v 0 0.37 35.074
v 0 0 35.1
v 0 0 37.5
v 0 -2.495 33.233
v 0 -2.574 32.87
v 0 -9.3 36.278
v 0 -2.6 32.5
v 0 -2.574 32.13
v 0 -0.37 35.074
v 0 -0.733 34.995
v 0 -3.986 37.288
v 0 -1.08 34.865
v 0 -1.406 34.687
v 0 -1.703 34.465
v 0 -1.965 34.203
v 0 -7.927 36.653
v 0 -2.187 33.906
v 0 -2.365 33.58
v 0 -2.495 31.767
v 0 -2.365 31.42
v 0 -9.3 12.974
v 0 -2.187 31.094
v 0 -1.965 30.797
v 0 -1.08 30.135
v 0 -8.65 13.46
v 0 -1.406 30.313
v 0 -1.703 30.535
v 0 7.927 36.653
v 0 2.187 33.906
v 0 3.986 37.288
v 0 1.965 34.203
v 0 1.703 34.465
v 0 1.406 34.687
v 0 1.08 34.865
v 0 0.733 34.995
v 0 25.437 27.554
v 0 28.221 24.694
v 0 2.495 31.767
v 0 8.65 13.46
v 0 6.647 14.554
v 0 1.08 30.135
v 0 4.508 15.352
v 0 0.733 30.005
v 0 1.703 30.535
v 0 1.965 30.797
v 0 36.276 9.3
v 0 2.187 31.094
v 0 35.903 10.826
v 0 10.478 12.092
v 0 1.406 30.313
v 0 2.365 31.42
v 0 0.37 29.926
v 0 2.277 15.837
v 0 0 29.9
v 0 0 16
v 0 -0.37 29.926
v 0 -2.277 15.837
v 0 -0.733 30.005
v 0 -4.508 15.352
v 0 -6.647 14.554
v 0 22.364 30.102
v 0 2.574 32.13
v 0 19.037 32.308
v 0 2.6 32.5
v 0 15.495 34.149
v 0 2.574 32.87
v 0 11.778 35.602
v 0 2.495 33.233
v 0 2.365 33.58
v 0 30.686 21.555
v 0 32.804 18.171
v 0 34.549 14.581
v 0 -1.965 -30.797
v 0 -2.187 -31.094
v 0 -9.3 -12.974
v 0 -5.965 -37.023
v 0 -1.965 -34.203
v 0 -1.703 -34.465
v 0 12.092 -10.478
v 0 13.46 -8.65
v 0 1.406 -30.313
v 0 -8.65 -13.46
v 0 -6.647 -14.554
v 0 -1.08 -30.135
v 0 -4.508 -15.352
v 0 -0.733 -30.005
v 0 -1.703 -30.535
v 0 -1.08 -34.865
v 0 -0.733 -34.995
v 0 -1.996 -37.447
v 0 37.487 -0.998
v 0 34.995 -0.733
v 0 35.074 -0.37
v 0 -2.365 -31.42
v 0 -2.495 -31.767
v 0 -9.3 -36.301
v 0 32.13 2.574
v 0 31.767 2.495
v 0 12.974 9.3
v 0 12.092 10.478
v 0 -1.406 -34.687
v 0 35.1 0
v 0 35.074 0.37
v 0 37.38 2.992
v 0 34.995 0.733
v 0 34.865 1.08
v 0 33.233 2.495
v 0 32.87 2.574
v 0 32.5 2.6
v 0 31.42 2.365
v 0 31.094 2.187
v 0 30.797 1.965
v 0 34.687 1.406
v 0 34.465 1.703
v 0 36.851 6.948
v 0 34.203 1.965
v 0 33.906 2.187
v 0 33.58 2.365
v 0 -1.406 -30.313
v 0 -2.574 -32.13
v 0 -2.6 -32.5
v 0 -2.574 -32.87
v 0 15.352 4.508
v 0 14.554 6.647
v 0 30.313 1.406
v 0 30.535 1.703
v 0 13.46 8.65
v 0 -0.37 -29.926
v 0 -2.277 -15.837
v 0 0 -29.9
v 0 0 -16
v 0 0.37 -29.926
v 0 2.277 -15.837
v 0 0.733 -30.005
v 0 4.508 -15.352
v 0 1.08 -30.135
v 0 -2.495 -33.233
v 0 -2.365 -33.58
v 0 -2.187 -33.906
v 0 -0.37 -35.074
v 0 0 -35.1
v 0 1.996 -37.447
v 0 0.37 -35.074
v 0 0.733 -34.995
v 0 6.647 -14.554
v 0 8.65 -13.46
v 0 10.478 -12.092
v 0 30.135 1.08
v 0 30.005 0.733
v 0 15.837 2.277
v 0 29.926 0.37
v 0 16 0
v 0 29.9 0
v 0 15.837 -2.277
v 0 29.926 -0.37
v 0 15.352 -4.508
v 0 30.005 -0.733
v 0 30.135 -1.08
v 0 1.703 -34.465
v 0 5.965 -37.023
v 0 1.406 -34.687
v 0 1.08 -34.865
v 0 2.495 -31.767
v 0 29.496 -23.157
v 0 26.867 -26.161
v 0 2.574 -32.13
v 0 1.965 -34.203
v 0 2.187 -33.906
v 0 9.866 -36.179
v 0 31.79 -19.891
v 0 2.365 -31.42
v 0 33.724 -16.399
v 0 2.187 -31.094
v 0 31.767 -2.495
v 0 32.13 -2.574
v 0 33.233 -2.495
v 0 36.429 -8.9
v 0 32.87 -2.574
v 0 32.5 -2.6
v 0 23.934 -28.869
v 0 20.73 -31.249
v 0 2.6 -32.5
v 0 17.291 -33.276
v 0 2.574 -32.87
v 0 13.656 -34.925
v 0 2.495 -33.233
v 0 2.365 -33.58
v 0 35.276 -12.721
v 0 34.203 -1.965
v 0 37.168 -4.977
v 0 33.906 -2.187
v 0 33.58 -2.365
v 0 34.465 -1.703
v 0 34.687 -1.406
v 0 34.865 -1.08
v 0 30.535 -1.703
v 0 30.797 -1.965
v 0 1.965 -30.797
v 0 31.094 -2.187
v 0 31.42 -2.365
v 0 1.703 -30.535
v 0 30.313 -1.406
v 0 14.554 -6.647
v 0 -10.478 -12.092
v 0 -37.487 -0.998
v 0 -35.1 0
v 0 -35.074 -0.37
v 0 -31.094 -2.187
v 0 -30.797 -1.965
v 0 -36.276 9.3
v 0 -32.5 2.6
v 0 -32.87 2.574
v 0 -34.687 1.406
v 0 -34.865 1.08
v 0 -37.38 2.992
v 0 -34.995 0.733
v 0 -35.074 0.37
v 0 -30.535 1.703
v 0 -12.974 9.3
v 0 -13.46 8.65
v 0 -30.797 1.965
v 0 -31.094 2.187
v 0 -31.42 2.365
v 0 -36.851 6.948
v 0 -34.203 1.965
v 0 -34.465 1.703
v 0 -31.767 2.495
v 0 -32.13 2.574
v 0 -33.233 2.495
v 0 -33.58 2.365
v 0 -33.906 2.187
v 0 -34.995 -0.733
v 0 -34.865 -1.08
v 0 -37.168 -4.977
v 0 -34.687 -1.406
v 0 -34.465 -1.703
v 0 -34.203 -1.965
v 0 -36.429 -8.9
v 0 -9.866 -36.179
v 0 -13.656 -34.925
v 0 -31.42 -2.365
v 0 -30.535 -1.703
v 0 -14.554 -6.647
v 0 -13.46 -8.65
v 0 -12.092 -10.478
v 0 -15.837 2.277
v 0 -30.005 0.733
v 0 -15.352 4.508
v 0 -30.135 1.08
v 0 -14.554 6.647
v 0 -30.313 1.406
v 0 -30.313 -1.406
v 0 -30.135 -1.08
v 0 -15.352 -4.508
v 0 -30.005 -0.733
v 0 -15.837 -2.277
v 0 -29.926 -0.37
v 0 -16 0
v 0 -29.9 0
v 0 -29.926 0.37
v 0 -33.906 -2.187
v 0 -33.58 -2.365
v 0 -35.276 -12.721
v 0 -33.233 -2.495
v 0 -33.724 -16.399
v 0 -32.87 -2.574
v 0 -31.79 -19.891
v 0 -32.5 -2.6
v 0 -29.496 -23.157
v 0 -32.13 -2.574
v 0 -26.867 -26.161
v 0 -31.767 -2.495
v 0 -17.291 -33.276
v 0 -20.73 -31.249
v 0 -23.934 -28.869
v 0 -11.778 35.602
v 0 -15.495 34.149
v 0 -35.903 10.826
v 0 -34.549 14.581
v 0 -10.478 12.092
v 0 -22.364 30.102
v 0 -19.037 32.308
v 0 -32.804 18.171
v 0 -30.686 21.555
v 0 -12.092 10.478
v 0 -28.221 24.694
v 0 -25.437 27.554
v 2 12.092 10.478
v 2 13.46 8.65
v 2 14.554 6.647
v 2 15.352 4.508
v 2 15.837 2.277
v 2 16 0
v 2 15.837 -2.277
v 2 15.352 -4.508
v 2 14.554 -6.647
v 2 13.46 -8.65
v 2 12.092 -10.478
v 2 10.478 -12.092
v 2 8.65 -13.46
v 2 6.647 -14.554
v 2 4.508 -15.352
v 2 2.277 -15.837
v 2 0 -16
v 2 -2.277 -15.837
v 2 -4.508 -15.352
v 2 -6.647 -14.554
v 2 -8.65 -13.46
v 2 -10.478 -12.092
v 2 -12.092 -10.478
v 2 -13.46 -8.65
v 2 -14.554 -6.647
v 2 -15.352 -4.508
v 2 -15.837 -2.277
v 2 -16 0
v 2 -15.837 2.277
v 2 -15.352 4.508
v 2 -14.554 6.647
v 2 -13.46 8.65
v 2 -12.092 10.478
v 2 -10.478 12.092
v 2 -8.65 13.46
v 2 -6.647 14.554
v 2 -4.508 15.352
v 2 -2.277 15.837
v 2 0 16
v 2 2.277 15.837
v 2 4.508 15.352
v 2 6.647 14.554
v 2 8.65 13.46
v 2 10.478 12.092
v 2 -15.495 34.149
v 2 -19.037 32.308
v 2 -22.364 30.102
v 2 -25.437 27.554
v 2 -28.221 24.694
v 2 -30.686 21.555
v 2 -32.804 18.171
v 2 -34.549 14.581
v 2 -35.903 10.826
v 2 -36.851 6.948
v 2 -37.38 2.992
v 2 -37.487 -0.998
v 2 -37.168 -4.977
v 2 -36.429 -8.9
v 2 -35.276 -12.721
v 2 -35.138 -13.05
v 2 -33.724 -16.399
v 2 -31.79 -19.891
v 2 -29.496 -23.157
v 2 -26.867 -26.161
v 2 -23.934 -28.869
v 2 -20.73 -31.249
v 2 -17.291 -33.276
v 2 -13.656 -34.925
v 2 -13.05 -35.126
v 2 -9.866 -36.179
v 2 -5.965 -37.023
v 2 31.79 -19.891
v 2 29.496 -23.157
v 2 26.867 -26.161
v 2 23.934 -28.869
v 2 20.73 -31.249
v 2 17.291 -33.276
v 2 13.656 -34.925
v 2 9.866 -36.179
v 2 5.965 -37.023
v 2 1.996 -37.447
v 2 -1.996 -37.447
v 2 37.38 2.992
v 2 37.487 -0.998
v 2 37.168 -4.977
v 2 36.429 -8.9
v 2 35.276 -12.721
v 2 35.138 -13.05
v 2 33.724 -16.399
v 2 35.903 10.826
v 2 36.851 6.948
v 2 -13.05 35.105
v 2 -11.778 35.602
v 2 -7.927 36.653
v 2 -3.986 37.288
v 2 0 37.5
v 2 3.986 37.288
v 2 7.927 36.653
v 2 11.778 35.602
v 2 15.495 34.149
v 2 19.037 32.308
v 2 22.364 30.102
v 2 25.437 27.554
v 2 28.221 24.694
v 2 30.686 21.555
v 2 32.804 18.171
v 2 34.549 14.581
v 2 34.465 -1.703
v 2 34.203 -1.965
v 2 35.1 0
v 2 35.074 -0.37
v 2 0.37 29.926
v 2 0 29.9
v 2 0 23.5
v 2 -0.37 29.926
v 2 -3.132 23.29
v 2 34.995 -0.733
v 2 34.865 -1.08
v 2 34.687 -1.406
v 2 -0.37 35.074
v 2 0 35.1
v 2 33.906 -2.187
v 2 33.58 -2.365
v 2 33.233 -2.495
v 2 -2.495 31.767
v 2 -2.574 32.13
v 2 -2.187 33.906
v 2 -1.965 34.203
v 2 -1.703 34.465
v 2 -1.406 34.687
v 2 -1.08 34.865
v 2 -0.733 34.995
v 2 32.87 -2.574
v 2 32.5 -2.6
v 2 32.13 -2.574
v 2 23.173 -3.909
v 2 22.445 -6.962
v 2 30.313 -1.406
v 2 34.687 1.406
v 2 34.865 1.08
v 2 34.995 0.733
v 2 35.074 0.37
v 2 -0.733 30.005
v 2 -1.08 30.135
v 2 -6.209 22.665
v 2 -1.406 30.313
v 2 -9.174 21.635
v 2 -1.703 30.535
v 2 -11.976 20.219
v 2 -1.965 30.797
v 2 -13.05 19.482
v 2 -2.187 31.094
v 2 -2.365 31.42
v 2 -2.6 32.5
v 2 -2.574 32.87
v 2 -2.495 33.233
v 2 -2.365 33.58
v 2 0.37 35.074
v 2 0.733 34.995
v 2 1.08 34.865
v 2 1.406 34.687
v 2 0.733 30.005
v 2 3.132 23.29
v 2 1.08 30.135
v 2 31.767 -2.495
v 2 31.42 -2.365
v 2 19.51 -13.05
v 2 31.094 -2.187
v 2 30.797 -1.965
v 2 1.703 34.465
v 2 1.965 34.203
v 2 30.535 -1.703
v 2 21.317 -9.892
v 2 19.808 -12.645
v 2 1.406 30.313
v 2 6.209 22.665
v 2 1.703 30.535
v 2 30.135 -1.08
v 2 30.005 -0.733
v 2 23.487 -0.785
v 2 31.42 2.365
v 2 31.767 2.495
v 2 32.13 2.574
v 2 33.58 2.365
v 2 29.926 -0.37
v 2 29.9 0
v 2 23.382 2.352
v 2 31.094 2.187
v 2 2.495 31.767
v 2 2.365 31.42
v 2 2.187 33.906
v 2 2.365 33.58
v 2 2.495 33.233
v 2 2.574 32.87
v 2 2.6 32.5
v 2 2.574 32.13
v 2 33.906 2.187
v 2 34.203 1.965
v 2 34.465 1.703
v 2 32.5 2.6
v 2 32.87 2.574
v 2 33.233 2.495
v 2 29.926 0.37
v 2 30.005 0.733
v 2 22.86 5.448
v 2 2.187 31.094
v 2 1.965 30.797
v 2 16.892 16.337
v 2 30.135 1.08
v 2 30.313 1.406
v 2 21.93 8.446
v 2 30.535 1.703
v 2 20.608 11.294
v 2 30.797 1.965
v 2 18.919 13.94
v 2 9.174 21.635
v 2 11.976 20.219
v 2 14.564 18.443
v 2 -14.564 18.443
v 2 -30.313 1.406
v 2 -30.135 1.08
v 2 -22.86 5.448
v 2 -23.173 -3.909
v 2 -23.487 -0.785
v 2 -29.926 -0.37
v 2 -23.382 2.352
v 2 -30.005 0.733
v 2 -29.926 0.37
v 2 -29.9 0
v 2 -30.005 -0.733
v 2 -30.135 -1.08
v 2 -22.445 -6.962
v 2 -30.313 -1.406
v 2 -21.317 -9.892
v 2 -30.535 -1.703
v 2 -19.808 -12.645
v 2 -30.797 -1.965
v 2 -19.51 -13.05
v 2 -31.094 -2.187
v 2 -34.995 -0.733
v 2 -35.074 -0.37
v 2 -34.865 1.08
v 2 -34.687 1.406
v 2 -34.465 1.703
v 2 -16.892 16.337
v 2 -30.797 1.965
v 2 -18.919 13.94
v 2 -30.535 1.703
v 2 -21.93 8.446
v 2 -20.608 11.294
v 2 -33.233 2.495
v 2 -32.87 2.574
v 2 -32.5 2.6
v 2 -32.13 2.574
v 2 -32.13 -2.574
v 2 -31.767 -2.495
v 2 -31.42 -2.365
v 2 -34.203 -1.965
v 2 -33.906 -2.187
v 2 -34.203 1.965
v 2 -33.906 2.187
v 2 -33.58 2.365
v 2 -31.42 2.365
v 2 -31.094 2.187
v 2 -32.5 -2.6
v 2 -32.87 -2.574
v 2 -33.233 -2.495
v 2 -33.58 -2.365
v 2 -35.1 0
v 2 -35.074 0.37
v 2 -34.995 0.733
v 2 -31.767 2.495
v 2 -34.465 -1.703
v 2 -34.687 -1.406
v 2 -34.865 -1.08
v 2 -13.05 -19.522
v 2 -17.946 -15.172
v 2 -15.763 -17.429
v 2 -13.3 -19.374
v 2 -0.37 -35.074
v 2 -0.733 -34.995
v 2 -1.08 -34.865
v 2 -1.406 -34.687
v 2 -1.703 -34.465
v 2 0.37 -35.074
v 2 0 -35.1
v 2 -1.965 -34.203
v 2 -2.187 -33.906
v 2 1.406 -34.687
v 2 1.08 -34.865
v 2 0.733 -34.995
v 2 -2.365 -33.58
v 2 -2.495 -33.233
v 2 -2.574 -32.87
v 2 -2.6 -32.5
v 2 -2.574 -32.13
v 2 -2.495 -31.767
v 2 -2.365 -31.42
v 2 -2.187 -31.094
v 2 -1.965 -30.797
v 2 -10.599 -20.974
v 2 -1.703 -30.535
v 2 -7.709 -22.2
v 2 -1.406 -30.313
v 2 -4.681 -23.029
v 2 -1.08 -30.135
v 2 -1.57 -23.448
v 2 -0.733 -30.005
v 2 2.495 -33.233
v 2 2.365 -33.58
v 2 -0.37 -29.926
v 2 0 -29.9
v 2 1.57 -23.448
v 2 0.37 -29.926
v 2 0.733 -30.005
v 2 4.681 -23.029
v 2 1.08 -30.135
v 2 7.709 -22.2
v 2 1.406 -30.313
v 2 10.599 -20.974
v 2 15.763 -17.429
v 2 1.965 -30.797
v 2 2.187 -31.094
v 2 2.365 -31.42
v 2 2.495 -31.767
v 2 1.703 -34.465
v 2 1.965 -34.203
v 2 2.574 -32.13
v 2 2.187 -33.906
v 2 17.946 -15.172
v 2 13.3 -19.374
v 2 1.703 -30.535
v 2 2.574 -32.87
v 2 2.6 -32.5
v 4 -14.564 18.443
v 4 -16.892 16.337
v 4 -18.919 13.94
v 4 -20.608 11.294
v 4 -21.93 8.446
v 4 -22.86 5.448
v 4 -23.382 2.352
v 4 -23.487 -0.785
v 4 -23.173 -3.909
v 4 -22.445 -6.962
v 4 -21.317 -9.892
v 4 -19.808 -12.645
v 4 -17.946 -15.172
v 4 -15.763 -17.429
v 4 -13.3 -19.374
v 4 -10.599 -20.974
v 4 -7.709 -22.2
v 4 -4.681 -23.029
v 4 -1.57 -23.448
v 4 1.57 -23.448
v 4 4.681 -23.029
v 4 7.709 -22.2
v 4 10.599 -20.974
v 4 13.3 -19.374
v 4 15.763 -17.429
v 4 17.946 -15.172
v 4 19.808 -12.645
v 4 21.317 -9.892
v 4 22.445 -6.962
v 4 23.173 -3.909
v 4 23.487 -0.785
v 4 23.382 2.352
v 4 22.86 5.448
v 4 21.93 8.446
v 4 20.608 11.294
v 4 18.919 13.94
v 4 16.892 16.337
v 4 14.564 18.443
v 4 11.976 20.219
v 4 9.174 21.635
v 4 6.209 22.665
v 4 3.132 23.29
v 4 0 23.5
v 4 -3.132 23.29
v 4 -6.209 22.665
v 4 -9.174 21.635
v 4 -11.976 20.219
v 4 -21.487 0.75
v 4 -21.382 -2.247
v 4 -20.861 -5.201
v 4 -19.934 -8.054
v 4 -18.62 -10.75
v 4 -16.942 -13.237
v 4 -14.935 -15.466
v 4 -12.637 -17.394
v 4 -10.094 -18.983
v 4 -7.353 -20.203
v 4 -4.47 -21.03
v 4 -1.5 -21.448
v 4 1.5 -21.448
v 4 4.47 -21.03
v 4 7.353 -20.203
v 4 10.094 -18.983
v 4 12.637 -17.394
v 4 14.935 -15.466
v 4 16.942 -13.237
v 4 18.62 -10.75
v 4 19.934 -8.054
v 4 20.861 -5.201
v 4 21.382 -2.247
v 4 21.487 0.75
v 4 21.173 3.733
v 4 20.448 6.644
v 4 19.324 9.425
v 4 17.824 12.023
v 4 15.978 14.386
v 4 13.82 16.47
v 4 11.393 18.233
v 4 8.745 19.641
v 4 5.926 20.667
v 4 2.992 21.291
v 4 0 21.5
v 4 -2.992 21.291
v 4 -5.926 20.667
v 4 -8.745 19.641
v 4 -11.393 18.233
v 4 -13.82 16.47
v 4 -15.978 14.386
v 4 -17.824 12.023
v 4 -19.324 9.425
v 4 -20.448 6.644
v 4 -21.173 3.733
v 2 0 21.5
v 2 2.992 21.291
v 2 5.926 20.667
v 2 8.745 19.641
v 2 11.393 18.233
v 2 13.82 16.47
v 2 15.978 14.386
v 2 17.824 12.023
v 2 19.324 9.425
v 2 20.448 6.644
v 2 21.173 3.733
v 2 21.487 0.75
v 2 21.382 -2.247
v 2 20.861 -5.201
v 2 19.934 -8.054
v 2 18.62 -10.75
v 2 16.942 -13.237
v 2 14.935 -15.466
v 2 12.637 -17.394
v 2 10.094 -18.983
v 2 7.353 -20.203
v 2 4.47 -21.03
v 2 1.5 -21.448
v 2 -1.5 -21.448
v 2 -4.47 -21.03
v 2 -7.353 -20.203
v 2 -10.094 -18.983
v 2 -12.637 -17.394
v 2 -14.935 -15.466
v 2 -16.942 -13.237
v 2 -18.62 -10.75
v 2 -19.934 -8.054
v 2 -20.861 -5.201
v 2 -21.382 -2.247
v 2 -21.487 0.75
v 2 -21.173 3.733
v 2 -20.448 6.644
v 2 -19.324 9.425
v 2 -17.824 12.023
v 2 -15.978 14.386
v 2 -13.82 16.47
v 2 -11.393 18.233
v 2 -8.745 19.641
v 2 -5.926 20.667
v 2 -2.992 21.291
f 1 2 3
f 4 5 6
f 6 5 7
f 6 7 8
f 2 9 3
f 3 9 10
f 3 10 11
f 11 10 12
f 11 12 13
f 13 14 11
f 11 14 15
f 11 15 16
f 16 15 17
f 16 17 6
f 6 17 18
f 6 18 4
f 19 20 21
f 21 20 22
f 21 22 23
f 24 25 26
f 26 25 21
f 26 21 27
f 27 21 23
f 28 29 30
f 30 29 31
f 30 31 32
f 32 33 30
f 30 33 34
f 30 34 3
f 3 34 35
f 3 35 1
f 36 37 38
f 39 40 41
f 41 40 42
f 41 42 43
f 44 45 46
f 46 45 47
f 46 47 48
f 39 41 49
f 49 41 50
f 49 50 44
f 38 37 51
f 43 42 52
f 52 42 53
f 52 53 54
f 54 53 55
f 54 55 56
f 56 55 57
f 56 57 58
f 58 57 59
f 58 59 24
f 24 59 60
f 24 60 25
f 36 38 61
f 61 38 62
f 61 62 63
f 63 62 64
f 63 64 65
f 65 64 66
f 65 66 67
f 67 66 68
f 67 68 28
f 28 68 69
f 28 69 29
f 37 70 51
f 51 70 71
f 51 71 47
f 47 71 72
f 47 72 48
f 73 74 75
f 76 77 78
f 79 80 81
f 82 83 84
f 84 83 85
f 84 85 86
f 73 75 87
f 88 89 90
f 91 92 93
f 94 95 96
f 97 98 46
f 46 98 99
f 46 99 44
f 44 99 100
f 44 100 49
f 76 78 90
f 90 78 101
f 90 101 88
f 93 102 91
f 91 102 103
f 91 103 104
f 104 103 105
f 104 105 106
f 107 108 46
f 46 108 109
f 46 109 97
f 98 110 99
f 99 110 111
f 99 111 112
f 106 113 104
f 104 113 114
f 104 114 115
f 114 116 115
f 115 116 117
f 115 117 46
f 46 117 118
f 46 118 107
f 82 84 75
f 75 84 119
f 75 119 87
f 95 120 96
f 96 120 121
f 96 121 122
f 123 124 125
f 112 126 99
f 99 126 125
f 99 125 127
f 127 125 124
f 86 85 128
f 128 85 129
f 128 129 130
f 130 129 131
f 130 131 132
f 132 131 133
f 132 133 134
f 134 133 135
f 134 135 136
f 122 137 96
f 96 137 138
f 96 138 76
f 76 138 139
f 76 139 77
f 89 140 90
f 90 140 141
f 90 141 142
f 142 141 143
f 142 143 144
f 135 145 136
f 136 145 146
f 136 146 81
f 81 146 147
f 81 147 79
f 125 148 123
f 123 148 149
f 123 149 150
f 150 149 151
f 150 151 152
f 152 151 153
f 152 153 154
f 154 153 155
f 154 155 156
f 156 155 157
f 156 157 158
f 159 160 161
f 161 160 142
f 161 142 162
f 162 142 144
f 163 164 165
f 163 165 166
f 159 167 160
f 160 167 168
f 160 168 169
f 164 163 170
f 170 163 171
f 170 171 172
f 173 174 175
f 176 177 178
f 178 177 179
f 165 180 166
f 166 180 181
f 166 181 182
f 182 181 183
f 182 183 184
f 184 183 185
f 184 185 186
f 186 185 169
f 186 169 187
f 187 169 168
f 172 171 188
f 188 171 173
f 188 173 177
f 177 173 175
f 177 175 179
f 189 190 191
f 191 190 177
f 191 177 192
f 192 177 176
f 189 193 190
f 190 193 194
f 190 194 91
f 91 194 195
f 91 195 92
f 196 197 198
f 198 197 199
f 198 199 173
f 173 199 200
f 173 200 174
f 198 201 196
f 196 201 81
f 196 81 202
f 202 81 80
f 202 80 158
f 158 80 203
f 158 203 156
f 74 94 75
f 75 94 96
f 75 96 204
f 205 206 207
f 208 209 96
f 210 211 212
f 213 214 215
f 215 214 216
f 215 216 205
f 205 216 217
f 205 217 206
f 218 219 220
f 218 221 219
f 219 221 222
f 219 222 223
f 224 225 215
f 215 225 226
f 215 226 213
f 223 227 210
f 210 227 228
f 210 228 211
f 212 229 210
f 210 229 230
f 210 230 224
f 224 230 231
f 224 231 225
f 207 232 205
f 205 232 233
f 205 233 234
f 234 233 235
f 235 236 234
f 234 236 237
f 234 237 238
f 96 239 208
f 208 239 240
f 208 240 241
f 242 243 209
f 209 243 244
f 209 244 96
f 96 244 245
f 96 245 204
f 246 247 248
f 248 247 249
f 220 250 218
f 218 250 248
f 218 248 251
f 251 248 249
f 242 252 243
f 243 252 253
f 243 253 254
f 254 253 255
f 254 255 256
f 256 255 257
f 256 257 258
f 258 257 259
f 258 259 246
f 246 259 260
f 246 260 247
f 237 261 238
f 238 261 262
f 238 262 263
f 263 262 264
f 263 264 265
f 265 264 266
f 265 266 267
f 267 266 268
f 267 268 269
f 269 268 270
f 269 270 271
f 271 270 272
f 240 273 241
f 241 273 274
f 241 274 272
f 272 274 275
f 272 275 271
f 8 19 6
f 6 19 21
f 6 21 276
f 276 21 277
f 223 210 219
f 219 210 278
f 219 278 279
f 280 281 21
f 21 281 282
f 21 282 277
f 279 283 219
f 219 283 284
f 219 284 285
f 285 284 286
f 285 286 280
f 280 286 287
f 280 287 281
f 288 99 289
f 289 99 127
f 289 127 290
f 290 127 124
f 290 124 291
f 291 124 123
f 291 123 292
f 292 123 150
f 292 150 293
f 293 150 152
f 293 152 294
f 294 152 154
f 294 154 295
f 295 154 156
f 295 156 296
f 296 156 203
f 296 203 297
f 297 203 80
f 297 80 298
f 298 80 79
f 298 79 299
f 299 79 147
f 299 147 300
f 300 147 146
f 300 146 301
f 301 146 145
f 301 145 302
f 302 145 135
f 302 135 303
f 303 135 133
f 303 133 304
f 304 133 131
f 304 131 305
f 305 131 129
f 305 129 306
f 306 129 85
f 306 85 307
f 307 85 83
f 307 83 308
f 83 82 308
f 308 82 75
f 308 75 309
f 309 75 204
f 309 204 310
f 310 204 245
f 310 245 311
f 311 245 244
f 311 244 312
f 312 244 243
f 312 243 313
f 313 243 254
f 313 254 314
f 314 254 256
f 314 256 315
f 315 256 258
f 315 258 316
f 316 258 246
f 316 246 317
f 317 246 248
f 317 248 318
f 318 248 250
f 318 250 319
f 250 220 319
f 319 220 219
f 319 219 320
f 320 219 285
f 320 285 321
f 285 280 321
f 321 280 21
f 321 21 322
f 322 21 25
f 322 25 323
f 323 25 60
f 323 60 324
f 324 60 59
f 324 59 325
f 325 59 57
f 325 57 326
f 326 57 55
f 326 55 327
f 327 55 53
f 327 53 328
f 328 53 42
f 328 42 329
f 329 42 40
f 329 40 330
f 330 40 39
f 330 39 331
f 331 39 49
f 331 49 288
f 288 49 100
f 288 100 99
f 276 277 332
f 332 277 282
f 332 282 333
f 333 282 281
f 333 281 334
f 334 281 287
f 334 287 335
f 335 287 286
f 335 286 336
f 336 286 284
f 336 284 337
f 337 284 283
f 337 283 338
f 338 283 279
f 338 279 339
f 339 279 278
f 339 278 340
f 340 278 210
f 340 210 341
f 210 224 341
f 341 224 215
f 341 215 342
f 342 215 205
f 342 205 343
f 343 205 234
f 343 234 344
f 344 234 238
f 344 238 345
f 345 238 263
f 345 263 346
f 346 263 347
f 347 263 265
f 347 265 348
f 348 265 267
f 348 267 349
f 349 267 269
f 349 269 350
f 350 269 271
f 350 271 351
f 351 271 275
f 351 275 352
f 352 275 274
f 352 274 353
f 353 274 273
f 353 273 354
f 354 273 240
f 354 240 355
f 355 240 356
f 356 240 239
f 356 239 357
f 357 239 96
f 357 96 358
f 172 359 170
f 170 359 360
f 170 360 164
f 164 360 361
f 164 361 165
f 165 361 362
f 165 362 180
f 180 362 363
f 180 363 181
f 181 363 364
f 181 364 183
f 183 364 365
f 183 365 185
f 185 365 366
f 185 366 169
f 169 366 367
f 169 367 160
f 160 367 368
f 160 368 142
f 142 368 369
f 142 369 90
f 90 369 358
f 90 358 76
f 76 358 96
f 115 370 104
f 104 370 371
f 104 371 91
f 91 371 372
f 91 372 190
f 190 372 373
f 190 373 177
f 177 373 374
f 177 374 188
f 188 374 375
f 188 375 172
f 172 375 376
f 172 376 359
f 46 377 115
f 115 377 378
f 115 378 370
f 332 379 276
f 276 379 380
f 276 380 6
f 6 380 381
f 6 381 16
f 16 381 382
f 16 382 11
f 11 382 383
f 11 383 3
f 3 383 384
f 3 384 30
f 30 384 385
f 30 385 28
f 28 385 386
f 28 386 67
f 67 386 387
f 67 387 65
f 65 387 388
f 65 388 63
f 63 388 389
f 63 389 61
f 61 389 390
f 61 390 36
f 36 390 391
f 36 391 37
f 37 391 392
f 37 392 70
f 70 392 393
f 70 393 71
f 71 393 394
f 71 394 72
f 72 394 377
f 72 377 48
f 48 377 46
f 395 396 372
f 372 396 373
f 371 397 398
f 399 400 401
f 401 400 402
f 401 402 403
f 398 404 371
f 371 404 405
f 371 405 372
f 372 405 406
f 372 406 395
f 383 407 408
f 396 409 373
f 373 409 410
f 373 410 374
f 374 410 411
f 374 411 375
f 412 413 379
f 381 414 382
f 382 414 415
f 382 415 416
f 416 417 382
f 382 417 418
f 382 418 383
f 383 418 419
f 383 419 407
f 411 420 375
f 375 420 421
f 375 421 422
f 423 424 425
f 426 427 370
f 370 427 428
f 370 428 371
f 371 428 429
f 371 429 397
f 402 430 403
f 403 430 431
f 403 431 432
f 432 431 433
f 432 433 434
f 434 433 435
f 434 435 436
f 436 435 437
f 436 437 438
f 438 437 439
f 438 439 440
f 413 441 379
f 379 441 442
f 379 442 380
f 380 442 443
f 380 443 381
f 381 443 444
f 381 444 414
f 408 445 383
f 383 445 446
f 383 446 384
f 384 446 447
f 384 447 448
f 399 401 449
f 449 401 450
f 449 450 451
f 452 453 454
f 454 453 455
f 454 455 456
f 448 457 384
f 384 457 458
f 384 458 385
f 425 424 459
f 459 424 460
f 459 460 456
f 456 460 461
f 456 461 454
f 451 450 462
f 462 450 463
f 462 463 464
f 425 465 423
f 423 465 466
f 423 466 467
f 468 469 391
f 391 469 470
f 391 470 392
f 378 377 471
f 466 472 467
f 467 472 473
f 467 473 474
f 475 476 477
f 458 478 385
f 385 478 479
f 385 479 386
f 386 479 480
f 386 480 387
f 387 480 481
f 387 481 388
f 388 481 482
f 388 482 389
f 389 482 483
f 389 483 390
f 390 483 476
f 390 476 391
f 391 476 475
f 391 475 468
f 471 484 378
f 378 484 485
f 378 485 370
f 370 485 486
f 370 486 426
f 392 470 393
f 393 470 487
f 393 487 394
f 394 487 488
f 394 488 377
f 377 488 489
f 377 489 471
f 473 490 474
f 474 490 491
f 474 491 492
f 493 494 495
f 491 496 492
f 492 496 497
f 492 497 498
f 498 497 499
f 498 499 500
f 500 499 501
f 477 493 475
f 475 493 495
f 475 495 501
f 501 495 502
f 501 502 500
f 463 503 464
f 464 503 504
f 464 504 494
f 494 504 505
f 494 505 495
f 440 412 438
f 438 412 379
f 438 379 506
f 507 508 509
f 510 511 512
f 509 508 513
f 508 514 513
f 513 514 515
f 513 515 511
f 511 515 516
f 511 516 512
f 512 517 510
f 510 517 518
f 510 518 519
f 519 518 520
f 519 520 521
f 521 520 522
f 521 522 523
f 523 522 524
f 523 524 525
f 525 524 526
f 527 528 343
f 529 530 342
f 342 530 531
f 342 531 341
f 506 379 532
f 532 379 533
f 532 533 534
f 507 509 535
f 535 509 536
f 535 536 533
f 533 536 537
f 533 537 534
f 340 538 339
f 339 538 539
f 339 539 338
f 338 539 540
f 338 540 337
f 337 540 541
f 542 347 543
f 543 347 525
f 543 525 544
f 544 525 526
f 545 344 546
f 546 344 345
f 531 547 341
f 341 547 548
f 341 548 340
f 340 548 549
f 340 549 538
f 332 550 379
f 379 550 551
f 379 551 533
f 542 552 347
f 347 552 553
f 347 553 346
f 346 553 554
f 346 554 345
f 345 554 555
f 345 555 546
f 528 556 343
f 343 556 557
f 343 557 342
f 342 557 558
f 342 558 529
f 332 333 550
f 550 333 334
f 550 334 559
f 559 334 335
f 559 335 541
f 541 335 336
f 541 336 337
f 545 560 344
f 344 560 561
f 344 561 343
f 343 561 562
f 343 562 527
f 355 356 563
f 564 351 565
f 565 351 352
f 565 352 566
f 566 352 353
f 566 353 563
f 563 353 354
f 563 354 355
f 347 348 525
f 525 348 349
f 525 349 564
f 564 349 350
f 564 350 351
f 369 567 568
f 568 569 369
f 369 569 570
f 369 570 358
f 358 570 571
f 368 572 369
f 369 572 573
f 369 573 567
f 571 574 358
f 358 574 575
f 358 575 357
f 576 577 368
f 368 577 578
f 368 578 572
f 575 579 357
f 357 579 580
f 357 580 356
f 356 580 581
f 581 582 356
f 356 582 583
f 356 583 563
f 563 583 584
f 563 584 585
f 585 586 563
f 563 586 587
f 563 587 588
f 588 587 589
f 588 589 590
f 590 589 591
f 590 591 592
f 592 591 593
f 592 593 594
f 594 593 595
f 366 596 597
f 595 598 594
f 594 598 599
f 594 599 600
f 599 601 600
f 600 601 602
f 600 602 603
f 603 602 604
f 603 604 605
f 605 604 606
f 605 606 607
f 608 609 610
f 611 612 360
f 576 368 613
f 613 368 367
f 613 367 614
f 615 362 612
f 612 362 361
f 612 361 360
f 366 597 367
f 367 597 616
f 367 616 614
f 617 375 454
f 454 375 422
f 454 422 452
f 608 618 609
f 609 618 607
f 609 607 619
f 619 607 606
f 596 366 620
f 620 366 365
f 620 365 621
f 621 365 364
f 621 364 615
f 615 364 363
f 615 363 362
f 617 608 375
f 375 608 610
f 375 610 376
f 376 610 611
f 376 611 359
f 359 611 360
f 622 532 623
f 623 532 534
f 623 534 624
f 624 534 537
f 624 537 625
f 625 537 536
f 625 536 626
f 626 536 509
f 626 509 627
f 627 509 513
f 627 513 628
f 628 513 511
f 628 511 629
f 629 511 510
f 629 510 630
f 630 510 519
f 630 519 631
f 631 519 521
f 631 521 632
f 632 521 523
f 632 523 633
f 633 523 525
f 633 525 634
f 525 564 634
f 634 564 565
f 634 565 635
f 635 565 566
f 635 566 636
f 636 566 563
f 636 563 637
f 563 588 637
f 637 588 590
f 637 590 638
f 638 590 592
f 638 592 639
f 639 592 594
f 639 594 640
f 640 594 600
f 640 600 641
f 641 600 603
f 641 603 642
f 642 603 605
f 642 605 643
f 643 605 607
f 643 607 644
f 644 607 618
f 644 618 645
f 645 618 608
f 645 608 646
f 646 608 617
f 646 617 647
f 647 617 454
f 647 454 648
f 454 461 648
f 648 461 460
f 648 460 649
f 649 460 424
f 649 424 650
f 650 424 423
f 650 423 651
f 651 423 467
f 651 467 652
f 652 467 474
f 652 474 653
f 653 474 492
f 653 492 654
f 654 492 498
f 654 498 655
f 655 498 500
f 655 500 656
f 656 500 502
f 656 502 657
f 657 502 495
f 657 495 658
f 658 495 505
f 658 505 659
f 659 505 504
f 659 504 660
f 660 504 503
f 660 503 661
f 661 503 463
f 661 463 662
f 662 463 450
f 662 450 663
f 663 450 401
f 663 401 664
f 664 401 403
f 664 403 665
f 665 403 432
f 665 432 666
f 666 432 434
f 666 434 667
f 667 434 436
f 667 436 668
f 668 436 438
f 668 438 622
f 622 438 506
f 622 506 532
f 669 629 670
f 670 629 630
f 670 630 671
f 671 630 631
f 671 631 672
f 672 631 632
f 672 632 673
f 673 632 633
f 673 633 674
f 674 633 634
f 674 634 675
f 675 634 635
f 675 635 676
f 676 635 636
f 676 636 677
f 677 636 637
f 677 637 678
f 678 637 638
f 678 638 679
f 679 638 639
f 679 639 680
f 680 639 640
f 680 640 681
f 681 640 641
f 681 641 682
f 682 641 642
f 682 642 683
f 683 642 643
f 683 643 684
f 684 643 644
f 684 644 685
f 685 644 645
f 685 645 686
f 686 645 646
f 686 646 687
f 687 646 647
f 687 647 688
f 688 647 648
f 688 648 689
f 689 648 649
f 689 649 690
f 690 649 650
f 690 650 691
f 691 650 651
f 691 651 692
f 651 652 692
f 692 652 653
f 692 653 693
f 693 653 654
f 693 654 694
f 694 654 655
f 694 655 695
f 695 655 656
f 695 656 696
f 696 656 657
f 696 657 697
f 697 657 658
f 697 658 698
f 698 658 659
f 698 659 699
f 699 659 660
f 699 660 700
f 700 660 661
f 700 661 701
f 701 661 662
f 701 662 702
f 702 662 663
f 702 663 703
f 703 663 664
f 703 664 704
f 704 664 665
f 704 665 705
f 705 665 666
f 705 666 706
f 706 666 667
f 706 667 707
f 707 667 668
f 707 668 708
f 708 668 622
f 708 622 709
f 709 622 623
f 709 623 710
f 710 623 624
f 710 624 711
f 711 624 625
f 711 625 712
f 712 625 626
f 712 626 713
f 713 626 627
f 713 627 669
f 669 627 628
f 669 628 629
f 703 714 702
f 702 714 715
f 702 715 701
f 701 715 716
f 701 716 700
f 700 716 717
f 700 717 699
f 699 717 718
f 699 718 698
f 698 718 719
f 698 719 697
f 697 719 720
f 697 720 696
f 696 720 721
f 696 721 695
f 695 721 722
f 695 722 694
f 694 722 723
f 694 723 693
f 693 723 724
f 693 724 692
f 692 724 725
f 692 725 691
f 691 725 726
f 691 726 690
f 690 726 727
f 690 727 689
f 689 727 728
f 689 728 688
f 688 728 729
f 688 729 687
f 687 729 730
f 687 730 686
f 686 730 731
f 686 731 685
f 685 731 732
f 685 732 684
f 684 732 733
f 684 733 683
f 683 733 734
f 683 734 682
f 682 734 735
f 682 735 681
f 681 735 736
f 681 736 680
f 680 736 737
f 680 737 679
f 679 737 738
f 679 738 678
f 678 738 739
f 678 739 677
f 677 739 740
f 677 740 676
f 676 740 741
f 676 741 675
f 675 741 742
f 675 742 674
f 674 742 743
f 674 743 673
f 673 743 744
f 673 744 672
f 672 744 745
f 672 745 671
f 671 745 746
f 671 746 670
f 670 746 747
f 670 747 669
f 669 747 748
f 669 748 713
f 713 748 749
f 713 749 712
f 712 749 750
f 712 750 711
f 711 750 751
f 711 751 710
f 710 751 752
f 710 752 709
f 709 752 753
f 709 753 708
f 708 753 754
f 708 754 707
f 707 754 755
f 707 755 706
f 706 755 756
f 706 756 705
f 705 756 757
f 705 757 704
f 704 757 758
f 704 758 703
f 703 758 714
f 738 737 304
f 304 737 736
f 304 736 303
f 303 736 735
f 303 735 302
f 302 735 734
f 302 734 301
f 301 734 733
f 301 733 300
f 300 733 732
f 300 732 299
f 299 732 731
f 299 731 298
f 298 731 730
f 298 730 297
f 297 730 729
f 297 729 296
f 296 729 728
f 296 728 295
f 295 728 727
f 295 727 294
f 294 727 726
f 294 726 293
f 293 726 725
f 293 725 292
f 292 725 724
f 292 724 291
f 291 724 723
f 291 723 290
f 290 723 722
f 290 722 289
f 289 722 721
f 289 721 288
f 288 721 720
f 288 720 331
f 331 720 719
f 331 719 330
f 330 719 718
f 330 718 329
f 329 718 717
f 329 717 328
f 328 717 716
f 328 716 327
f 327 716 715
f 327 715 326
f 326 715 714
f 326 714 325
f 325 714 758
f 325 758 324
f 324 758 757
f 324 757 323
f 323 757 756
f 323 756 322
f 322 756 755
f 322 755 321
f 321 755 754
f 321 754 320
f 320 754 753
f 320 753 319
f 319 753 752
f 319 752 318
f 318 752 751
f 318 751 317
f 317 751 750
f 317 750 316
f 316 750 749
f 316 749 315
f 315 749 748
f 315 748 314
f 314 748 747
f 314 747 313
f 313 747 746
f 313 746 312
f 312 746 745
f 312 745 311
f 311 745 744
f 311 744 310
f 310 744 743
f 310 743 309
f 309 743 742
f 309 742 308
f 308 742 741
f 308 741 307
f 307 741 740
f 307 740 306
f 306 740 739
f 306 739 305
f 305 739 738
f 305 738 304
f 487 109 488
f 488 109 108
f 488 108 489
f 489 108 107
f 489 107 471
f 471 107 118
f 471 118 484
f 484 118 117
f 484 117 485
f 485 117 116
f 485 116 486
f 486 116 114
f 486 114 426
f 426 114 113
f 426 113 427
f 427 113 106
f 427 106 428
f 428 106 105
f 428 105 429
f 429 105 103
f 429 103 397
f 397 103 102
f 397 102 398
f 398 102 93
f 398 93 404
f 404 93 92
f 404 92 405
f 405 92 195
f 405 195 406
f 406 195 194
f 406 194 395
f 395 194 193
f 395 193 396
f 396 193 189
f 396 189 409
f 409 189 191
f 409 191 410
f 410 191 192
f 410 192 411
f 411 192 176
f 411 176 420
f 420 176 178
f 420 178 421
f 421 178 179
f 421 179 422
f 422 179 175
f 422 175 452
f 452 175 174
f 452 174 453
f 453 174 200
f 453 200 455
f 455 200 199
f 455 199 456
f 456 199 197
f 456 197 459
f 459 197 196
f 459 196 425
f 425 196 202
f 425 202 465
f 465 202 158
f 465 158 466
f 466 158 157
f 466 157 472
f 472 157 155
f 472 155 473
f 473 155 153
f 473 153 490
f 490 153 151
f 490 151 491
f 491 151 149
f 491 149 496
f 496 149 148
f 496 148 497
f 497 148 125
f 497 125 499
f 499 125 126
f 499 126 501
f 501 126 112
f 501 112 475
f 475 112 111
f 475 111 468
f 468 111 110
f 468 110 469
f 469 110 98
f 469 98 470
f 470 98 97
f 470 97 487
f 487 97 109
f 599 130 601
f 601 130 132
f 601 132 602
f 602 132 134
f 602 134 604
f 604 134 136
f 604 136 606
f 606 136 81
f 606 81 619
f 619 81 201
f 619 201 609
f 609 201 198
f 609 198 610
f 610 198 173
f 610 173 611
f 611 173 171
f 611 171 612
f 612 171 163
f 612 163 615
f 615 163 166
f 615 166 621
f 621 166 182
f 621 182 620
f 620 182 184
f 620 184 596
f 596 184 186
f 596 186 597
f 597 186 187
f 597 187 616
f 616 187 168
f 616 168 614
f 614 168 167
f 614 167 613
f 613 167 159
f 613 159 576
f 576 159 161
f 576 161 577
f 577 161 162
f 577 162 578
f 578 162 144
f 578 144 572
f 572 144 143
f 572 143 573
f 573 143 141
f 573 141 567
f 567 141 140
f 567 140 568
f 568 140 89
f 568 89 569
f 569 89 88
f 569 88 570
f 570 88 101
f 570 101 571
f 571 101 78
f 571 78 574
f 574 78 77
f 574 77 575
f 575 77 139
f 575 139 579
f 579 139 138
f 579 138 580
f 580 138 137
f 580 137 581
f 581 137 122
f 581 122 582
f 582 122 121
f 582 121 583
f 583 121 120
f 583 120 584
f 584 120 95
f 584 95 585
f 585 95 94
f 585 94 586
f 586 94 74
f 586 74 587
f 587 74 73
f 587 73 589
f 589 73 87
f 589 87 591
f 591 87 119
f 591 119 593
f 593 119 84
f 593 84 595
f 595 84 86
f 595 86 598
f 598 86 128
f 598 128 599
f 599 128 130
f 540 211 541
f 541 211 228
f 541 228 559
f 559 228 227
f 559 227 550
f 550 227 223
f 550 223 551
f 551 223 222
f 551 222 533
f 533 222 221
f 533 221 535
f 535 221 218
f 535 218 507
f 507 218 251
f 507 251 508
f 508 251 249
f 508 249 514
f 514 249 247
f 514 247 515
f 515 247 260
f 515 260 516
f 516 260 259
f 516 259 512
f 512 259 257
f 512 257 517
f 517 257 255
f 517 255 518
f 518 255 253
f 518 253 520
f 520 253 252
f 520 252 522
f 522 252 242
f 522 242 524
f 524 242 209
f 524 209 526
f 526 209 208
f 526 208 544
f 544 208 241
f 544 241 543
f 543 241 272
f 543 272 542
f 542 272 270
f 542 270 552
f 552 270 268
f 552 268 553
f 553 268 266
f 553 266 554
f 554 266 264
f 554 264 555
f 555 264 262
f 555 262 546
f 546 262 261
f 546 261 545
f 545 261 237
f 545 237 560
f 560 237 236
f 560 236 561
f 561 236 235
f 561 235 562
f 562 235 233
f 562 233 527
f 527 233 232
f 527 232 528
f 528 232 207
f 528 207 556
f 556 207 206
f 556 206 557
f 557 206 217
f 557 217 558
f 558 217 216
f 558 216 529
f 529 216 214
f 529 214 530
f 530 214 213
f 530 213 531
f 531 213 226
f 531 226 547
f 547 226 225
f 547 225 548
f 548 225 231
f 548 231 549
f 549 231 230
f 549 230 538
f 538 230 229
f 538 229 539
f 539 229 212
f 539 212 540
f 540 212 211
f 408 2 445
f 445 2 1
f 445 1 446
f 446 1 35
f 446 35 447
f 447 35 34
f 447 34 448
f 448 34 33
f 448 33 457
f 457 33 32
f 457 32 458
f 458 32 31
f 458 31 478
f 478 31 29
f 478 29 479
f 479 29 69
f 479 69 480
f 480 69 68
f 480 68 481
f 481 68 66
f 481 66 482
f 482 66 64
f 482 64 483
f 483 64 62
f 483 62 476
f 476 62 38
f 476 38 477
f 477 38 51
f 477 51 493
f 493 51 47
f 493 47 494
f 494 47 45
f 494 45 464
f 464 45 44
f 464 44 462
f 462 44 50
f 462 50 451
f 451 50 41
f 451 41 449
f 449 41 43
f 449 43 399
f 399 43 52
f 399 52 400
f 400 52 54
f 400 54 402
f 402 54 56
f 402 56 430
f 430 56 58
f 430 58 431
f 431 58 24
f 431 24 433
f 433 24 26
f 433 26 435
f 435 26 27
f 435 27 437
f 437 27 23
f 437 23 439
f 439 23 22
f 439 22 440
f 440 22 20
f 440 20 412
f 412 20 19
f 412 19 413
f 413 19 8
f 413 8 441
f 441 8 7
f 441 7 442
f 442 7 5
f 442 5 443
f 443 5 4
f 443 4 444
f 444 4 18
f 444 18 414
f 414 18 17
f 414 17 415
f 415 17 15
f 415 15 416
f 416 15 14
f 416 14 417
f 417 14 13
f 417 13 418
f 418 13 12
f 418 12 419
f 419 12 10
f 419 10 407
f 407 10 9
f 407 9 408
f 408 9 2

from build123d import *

# Parameters (mm, degrees)
KREISMUSTER1_COUNT = 4


with BuildPart() as part:
    # Skizze1 → Rotation1 (revolve)
    with BuildSketch(Plane.XY):
        Polygon((0, 37.5), (0, 16), (2, 16), (2, 21.5), (4, 21.5), (4, 23.5), (2, 23.5), (2, 37.5), align=None)
    revolve(axis=Axis((-7.743389997, 0, 0), (1, 0, 0)))

    # Skizze7 → Ø5.2 (5.2) Durchmesser Bohrung1 (revolve, cut)
    with BuildSketch(Plane.ZX.offset(32.5)):
        Polygon((0, 0), (0, 31.562237609), (2.6, 30), (2.6, 0), align=None)
    f_5_2_5_2_durchmesser_bohrung1 = revolve(axis=Axis((-6.35, 32.5, 0), (1, 0, 0)), mode=Mode.SUBTRACT)

    # Kreismuster1: Ø5.2 (5.2) Durchmesser Bohrung1 ×4 about axis
    kreismuster1_axis = Axis((0, 0, 0), (1, 0, 0))
    for i in range(1, KREISMUSTER1_COUNT):
        add(f_5_2_5_2_durchmesser_bohrung1.rotate(kreismuster1_axis, i * 360 / KREISMUSTER1_COUNT), mode=Mode.SUBTRACT)


solid = part.part
